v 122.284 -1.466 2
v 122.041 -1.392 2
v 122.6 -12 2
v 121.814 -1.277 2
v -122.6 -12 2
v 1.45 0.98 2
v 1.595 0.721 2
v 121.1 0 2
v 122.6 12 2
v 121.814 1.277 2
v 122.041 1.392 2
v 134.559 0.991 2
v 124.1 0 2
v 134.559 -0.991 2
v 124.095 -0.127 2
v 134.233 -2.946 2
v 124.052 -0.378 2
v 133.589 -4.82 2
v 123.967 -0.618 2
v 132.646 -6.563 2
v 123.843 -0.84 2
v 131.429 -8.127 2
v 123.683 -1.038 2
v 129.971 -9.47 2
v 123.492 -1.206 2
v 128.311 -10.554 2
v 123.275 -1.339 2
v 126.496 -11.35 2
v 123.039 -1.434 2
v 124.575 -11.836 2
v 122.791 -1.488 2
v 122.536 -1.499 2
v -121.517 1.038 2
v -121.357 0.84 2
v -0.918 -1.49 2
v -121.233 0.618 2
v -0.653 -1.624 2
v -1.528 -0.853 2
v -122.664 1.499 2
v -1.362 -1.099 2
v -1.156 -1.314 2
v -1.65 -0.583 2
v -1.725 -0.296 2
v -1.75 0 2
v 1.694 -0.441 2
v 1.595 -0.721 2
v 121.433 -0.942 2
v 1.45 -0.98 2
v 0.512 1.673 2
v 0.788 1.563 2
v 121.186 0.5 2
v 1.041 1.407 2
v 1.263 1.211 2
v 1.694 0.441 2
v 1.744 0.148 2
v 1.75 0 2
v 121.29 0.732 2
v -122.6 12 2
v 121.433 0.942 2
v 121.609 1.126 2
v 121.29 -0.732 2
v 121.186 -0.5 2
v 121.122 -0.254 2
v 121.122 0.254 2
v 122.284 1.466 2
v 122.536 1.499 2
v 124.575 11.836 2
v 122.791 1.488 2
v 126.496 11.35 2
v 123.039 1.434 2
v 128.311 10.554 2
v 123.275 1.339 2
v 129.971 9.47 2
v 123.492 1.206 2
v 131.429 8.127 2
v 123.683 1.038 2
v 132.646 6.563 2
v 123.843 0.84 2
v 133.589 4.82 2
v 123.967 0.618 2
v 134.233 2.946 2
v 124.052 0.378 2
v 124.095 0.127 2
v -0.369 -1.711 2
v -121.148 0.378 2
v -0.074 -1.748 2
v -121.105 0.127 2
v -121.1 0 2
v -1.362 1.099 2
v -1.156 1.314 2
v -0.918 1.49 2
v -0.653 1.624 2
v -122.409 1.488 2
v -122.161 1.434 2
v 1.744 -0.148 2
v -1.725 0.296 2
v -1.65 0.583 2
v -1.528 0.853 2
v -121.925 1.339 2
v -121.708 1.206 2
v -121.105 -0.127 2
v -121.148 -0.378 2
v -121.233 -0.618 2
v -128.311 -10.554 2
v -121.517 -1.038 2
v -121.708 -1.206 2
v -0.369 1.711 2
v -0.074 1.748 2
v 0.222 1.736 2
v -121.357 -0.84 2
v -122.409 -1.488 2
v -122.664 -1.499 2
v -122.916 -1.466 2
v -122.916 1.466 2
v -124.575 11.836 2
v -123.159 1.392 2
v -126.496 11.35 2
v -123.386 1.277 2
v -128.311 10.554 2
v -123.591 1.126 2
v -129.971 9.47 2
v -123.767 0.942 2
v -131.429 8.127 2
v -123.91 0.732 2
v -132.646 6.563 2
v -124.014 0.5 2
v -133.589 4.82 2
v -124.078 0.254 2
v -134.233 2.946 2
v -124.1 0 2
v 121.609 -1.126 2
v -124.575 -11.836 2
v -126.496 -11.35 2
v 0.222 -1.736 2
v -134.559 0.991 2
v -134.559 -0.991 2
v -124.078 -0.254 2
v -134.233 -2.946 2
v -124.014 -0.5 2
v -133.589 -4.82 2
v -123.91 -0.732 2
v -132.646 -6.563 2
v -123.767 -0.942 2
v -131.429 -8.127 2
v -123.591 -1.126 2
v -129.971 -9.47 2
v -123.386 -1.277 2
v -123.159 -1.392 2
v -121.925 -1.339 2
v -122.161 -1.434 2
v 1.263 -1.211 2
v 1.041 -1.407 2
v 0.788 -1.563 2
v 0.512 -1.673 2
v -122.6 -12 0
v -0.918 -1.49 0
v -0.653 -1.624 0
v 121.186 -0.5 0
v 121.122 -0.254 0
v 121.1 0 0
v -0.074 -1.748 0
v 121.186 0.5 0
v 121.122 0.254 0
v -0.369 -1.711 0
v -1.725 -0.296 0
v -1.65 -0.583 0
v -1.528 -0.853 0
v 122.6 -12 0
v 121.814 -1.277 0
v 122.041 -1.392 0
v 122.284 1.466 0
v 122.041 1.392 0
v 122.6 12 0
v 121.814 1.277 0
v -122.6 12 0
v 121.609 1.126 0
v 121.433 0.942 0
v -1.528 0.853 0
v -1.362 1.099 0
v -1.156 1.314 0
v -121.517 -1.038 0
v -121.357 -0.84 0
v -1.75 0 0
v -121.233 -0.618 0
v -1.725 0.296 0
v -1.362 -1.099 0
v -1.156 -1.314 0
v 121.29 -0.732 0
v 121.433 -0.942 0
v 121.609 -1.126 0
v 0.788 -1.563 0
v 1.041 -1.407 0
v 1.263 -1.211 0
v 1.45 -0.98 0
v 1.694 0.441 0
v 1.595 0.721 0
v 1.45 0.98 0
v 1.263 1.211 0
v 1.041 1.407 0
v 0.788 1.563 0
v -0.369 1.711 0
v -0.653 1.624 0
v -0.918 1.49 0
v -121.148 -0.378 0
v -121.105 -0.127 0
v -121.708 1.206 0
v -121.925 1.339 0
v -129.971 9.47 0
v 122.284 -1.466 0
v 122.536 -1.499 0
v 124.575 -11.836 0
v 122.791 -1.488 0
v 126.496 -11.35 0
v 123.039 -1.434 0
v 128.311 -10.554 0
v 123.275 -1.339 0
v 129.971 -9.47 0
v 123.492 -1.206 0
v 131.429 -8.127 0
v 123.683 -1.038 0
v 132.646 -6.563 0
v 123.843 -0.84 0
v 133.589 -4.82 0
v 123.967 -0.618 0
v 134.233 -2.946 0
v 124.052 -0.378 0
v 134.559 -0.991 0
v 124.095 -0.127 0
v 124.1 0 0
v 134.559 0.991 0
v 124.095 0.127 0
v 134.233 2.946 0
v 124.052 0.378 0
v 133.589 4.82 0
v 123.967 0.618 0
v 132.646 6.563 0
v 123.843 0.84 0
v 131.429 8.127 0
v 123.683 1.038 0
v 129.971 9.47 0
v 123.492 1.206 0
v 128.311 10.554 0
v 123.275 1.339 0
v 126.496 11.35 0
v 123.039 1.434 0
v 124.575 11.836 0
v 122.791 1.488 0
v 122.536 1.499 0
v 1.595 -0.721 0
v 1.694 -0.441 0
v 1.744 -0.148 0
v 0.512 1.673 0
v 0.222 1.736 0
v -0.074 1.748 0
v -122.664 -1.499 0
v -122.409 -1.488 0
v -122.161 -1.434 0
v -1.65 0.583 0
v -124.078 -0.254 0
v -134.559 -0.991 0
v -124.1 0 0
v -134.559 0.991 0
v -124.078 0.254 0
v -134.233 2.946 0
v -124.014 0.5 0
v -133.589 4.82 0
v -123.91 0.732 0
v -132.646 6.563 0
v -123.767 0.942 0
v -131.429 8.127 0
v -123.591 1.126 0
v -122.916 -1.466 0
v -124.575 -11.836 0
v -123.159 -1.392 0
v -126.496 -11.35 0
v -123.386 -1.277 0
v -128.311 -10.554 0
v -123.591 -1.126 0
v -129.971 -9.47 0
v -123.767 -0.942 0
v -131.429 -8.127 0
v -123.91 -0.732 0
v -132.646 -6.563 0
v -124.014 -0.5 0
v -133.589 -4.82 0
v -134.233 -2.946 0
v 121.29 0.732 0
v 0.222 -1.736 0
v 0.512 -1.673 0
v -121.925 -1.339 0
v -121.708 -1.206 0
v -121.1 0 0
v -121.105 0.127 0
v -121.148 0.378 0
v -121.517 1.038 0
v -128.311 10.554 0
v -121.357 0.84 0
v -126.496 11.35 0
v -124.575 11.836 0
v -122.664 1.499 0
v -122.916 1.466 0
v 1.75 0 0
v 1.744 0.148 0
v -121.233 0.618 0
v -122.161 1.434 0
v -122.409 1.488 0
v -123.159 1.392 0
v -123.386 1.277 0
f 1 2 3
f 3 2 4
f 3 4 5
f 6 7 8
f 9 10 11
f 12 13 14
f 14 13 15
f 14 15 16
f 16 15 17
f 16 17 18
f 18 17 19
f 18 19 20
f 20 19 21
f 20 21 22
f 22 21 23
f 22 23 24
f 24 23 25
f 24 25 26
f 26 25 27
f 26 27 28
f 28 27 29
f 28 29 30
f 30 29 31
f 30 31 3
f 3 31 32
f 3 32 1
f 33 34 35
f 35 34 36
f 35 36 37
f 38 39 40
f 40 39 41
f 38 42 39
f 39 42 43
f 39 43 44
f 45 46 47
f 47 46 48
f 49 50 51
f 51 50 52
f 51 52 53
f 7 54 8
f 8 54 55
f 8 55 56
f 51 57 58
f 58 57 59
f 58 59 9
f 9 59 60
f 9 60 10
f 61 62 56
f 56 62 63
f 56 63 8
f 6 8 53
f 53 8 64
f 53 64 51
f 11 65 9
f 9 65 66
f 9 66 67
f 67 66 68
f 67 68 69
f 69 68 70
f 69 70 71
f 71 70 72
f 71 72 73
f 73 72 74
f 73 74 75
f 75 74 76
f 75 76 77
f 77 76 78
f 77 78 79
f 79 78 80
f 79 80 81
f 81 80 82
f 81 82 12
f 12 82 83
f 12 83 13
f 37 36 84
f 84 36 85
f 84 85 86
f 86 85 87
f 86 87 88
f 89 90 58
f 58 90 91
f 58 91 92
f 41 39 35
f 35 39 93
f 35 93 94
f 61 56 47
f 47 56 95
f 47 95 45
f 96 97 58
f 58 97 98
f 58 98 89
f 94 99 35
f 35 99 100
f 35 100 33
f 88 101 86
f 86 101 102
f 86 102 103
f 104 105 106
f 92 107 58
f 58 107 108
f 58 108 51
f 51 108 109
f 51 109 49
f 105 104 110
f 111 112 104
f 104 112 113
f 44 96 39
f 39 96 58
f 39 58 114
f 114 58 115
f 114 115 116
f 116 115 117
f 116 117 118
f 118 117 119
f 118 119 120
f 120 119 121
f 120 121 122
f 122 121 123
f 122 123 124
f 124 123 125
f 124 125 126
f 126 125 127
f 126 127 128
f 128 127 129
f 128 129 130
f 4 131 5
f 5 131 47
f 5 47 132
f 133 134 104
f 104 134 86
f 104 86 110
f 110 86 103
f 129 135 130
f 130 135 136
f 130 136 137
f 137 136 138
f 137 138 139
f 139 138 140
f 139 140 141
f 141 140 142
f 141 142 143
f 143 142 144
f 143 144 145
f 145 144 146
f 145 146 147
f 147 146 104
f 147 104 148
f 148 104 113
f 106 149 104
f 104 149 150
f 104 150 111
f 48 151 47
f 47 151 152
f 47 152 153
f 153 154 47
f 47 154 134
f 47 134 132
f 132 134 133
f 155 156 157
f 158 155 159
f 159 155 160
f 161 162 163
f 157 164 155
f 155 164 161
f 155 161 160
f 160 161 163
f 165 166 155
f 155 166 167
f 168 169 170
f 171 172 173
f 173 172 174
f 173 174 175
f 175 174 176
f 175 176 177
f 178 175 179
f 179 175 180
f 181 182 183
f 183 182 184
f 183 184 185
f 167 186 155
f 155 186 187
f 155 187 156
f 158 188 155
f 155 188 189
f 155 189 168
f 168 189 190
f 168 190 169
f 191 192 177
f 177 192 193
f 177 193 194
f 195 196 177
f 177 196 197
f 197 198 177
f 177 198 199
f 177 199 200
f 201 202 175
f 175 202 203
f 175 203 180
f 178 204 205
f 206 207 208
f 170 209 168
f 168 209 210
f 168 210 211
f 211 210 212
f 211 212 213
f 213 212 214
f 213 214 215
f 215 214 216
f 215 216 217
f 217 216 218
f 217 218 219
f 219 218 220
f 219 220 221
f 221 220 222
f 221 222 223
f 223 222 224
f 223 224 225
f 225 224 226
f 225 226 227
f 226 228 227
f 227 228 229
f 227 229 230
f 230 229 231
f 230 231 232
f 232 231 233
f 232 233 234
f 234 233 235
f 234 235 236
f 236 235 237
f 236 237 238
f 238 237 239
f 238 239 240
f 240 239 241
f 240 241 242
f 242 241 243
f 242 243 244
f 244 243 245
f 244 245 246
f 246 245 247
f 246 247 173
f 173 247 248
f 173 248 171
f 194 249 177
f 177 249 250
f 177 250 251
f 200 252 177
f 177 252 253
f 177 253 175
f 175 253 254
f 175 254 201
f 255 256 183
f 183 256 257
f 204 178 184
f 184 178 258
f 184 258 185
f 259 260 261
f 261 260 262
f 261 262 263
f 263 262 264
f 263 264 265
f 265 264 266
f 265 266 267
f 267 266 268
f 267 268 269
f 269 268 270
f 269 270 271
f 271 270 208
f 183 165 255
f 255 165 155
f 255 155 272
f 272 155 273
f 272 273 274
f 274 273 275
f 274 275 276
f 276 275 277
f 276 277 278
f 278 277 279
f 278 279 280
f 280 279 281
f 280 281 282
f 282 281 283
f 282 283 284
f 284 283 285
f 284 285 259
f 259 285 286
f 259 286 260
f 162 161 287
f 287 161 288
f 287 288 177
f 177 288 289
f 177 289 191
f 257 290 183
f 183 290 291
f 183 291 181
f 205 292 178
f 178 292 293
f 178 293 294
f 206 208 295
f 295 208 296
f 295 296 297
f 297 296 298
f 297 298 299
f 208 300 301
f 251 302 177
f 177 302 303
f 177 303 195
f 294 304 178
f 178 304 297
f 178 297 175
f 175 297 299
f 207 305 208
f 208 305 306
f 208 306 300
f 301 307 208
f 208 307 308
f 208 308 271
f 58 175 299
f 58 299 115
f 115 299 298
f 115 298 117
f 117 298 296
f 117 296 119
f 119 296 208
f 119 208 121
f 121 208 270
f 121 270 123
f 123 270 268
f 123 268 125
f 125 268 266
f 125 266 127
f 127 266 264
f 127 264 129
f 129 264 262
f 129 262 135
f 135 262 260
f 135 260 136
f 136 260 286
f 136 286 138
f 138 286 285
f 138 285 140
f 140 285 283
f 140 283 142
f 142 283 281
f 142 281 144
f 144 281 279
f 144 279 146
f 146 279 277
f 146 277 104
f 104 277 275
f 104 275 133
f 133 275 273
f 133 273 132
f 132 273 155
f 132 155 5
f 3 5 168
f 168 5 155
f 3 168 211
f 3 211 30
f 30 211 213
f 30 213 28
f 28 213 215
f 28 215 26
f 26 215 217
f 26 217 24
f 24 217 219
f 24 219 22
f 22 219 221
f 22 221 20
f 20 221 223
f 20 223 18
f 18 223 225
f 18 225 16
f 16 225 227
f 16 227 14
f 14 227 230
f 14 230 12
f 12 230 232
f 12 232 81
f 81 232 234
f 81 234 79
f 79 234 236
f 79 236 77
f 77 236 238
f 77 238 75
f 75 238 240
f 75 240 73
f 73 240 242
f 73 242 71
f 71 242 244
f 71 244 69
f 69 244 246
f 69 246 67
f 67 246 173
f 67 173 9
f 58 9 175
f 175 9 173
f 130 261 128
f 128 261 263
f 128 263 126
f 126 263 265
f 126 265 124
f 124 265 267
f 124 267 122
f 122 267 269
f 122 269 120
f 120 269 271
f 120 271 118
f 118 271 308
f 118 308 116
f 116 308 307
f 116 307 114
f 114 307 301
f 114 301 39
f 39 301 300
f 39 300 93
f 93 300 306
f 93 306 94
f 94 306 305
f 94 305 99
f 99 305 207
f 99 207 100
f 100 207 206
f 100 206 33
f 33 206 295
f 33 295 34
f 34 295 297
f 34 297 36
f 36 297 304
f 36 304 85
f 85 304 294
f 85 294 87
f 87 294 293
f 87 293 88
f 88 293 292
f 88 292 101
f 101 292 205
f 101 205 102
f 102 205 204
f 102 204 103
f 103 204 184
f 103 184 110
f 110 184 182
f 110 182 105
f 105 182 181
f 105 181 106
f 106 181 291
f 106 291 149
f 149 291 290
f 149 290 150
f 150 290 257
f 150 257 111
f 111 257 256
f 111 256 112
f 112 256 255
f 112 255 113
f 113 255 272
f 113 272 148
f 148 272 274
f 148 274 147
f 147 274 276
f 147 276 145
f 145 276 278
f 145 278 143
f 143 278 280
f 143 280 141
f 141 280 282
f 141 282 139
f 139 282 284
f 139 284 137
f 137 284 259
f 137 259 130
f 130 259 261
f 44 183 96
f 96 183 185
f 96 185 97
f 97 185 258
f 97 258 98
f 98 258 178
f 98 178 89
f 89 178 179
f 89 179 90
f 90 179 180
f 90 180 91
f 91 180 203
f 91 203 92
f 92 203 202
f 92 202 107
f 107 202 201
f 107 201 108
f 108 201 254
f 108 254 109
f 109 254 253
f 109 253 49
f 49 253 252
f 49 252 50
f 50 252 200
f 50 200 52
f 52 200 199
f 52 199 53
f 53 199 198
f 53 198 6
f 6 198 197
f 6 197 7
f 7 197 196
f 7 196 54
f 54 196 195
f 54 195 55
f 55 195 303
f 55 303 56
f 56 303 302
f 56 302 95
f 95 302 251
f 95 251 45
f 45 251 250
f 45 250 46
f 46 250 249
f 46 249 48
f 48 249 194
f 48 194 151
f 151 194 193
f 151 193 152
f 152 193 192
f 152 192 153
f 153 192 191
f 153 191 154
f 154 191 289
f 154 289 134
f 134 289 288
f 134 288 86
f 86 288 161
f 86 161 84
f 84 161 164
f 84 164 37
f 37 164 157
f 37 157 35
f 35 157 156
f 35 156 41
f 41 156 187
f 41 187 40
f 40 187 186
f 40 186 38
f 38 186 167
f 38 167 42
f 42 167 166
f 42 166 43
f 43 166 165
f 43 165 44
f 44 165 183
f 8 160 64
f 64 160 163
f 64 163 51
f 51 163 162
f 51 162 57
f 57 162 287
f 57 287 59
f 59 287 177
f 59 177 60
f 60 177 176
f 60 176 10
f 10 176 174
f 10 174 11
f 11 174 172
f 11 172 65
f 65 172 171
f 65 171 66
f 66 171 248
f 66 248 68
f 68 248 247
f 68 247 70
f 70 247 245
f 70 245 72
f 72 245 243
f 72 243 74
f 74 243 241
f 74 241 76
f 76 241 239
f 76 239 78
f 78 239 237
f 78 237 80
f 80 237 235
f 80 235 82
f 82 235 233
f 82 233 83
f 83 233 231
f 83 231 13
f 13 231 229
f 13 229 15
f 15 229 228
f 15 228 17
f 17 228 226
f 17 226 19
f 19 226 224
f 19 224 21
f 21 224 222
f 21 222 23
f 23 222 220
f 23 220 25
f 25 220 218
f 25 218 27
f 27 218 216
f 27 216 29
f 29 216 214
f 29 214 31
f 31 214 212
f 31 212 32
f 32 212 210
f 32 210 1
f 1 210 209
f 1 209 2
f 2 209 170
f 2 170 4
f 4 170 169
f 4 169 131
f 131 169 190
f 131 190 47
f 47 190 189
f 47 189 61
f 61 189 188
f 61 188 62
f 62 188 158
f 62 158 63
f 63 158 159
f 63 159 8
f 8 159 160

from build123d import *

# Parameters (mm, degrees)
SKETCH1_R           = 1.5
SKETCH1_R_2         = 1.75
BOSS_EXTRUDE1_DEPTH = 2


with BuildPart() as part:
    # Sketch1 → Boss-Extrude1 (new body)
    with BuildSketch(Plane.XY):
        with BuildLine():
            Line((-122.6, 12), (122.6, 12))
            ThreePointArc((122.6, 12), (134.6, 0), (122.6, -12))
            Line((122.6, -12), (-122.6, -12))
            ThreePointArc((-122.6, -12), (-134.6, 0), (-122.6, 12))
        make_face()
        with Locations((-122.6, 0)):
            Circle(SKETCH1_R, mode=Mode.SUBTRACT)
        Circle(SKETCH1_R_2, mode=Mode.SUBTRACT)
        with Locations((122.6, 0)):
            Circle(SKETCH1_R, mode=Mode.SUBTRACT)
    extrude(amount=BOSS_EXTRUDE1_DEPTH)


solid = part.part
